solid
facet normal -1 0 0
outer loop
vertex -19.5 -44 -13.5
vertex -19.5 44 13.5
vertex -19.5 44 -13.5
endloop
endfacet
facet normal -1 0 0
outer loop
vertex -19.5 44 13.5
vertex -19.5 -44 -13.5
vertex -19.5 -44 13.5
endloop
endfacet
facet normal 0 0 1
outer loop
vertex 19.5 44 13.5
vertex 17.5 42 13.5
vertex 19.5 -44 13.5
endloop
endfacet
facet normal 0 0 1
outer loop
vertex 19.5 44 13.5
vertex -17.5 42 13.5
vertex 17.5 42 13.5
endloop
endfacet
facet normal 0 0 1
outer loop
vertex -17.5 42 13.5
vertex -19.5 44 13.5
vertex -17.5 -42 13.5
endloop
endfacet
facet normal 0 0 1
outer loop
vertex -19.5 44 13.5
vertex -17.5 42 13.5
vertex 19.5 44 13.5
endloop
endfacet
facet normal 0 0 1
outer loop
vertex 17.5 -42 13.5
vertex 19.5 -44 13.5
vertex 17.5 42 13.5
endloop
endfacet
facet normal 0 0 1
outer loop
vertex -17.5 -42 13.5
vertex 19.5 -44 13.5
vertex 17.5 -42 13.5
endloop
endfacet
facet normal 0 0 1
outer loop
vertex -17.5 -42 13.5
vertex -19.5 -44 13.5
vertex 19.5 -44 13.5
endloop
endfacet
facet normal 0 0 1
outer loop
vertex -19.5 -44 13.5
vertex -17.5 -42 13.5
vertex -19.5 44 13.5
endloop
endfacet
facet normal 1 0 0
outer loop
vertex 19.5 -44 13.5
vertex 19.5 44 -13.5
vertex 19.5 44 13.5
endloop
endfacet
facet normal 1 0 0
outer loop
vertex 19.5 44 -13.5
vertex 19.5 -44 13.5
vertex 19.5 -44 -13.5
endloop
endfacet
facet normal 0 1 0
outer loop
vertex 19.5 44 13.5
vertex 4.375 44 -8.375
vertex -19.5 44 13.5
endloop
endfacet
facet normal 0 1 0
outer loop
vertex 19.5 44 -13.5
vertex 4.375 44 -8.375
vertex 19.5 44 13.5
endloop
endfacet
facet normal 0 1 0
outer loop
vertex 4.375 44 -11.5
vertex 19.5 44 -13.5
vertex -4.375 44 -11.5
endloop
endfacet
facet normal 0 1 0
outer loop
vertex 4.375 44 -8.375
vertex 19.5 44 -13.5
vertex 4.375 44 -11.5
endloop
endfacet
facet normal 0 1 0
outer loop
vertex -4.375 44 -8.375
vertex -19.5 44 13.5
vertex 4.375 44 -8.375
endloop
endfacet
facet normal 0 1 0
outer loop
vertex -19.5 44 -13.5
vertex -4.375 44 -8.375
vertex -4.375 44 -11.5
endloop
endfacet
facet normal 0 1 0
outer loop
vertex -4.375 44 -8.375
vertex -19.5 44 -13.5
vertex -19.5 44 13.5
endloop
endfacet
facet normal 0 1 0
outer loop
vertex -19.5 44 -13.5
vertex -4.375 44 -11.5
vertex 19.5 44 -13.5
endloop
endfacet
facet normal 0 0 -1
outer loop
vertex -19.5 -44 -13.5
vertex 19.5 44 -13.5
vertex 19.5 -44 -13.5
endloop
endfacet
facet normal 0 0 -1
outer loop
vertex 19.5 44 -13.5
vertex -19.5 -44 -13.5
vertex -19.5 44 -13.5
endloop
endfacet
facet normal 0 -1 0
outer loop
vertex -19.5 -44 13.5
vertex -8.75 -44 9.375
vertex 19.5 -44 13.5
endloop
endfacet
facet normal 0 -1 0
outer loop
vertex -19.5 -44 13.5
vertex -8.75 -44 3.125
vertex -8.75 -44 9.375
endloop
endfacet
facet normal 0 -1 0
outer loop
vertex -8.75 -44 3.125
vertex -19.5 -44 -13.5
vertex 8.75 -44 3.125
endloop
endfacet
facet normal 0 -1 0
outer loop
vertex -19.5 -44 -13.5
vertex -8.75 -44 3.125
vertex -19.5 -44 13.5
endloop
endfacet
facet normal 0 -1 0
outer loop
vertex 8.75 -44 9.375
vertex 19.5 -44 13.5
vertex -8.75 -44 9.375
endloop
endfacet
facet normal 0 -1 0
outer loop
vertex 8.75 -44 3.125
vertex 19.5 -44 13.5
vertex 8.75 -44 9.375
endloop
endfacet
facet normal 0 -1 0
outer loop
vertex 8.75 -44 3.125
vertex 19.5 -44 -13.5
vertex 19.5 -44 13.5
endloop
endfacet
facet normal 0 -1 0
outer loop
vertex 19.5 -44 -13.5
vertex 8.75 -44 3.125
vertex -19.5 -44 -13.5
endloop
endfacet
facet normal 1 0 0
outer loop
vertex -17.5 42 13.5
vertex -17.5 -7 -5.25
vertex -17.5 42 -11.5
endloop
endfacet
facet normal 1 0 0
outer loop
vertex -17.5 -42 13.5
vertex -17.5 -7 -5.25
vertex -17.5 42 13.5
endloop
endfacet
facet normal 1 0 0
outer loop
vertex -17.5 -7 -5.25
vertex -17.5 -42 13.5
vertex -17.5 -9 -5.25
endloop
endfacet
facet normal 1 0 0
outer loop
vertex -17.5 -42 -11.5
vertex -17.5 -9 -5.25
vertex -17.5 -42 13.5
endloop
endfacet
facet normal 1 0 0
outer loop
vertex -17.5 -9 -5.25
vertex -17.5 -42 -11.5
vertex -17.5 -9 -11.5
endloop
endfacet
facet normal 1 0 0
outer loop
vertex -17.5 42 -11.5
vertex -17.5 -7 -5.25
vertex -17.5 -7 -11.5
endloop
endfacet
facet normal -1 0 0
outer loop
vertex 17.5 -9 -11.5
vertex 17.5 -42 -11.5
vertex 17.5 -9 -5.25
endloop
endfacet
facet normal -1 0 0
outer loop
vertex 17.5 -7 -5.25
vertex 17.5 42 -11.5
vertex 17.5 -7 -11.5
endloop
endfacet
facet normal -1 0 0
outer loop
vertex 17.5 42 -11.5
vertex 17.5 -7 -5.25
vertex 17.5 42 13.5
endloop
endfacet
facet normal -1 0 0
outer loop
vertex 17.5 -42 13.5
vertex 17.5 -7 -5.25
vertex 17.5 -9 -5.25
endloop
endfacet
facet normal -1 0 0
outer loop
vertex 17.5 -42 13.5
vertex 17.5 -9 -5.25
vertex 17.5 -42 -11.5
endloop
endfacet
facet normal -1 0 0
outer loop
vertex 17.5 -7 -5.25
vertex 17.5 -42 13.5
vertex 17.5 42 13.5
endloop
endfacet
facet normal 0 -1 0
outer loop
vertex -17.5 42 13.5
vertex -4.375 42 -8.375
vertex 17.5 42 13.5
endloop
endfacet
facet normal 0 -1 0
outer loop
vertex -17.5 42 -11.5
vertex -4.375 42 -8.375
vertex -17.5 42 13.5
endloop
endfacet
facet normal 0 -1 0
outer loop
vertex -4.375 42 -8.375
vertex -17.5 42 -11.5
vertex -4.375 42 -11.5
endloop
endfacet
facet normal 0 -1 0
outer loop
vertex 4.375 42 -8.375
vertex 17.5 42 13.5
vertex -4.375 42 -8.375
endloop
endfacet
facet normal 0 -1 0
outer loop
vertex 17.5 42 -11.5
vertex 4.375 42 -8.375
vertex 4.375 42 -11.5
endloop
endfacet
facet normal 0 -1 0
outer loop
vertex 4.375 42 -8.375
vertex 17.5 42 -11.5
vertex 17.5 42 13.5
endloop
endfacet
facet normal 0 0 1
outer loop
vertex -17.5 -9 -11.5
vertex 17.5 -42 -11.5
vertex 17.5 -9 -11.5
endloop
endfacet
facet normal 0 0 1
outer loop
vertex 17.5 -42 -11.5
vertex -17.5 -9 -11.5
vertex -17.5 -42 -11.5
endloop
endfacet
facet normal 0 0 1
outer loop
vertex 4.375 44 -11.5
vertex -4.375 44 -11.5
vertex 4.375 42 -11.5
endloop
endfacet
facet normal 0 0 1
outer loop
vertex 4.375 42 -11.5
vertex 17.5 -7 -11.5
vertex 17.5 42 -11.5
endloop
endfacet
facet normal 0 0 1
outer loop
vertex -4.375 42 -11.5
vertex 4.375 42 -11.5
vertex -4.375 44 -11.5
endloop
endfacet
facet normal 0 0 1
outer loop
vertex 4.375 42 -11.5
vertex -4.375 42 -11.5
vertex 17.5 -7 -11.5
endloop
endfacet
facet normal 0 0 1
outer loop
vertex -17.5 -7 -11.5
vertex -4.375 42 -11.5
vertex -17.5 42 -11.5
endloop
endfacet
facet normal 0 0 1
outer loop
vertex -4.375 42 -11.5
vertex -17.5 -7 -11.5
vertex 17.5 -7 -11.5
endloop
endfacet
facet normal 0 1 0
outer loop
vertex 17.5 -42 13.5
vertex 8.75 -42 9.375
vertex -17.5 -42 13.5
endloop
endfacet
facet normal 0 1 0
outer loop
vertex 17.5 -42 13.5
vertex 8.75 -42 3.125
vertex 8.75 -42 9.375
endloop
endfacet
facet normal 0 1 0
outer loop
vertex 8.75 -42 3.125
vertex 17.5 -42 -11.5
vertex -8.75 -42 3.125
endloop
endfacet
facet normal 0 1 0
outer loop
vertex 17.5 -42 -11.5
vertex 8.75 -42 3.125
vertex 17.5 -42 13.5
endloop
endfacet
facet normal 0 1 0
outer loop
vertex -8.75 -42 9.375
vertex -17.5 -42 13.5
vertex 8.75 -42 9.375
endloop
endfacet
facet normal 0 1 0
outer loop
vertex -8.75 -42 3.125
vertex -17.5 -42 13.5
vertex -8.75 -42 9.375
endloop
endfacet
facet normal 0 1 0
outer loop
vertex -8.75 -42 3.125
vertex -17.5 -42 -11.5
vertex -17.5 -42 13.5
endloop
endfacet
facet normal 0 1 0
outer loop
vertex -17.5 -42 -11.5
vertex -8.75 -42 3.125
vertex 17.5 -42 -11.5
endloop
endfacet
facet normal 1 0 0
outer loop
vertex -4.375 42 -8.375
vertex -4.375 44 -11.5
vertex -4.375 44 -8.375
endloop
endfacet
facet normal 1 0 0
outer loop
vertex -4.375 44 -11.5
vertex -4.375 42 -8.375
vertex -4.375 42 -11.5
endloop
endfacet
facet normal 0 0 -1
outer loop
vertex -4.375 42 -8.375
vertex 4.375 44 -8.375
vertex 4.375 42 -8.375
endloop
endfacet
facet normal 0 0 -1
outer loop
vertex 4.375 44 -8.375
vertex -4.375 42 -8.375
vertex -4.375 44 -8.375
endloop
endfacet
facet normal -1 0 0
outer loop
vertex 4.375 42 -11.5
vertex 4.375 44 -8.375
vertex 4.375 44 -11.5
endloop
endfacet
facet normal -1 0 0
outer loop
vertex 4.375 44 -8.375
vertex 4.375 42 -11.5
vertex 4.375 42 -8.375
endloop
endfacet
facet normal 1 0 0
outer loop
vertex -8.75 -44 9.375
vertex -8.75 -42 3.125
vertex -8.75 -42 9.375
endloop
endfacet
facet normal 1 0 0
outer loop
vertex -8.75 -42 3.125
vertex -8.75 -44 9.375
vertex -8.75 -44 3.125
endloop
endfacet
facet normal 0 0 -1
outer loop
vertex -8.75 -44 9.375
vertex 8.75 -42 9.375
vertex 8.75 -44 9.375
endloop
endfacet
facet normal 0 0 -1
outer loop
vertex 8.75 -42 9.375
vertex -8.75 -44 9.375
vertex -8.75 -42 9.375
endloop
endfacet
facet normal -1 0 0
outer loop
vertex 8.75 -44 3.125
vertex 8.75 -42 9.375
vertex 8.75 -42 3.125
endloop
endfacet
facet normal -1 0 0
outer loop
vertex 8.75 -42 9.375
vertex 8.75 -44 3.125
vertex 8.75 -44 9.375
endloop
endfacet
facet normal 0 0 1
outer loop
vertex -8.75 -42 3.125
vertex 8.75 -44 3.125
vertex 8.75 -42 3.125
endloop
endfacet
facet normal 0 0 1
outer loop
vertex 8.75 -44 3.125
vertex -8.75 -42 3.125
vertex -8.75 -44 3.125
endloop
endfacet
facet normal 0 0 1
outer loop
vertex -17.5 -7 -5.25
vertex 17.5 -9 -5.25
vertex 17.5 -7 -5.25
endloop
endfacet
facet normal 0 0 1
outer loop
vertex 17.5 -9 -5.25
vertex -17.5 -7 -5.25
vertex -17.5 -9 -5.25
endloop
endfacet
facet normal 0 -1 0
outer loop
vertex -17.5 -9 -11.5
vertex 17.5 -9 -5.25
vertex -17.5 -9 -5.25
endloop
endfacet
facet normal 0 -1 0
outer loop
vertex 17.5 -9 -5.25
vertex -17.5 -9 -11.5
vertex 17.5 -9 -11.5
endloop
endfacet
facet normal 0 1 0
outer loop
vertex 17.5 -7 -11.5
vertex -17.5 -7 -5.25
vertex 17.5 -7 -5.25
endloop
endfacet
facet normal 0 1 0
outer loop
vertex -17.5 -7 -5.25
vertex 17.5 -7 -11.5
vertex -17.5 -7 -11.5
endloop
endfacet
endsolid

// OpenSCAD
esp8266Height = 48;
uln2003Height = 34;
wallThickness = 2;

insideWidth = 35;
insideHeight = 82 + /* Divider */ wallThickness;
insideDepth = 25;


caseWidth = insideWidth + (wallThickness * 2);
caseHeight = insideHeight + (wallThickness * 2);
caseDepth = insideDepth + wallThickness;



difference() {
    cube([caseWidth, caseHeight, caseDepth], center = true);
    translate([0, 0, wallThickness / 2]) {
        cube([insideWidth, insideHeight, insideDepth], center = true);
    };
    
    // Port #1 (USB)
    portOneWidth = insideWidth / 4;
    portOneDepth = insideDepth / 8;
    
    translate([0, caseHeight / 2, -(caseDepth / 2) + (portOneDepth / 2) + wallThickness]) {
        cube([portOneWidth, insideHeight / 2, portOneDepth], center = true);
    }
    
    // Port #2 (JST)
    portTwoWidth = insideWidth / 2;
    portTwoDepth = insideDepth / 4;
    
    translate([0, -(insideHeight / 2), (insideDepth / 4)]) {
        cube([portTwoWidth, insideHeight / 2, portTwoDepth], center = true);
    }
}

// Divider
dividerDepth = insideDepth / 4;

translate([0, -((insideHeight / 2) - uln2003Height), -(caseDepth / 2) + (dividerDepth / 2) + wallThickness]) {
    cube([insideWidth, wallThickness, dividerDepth], center = true);
}
